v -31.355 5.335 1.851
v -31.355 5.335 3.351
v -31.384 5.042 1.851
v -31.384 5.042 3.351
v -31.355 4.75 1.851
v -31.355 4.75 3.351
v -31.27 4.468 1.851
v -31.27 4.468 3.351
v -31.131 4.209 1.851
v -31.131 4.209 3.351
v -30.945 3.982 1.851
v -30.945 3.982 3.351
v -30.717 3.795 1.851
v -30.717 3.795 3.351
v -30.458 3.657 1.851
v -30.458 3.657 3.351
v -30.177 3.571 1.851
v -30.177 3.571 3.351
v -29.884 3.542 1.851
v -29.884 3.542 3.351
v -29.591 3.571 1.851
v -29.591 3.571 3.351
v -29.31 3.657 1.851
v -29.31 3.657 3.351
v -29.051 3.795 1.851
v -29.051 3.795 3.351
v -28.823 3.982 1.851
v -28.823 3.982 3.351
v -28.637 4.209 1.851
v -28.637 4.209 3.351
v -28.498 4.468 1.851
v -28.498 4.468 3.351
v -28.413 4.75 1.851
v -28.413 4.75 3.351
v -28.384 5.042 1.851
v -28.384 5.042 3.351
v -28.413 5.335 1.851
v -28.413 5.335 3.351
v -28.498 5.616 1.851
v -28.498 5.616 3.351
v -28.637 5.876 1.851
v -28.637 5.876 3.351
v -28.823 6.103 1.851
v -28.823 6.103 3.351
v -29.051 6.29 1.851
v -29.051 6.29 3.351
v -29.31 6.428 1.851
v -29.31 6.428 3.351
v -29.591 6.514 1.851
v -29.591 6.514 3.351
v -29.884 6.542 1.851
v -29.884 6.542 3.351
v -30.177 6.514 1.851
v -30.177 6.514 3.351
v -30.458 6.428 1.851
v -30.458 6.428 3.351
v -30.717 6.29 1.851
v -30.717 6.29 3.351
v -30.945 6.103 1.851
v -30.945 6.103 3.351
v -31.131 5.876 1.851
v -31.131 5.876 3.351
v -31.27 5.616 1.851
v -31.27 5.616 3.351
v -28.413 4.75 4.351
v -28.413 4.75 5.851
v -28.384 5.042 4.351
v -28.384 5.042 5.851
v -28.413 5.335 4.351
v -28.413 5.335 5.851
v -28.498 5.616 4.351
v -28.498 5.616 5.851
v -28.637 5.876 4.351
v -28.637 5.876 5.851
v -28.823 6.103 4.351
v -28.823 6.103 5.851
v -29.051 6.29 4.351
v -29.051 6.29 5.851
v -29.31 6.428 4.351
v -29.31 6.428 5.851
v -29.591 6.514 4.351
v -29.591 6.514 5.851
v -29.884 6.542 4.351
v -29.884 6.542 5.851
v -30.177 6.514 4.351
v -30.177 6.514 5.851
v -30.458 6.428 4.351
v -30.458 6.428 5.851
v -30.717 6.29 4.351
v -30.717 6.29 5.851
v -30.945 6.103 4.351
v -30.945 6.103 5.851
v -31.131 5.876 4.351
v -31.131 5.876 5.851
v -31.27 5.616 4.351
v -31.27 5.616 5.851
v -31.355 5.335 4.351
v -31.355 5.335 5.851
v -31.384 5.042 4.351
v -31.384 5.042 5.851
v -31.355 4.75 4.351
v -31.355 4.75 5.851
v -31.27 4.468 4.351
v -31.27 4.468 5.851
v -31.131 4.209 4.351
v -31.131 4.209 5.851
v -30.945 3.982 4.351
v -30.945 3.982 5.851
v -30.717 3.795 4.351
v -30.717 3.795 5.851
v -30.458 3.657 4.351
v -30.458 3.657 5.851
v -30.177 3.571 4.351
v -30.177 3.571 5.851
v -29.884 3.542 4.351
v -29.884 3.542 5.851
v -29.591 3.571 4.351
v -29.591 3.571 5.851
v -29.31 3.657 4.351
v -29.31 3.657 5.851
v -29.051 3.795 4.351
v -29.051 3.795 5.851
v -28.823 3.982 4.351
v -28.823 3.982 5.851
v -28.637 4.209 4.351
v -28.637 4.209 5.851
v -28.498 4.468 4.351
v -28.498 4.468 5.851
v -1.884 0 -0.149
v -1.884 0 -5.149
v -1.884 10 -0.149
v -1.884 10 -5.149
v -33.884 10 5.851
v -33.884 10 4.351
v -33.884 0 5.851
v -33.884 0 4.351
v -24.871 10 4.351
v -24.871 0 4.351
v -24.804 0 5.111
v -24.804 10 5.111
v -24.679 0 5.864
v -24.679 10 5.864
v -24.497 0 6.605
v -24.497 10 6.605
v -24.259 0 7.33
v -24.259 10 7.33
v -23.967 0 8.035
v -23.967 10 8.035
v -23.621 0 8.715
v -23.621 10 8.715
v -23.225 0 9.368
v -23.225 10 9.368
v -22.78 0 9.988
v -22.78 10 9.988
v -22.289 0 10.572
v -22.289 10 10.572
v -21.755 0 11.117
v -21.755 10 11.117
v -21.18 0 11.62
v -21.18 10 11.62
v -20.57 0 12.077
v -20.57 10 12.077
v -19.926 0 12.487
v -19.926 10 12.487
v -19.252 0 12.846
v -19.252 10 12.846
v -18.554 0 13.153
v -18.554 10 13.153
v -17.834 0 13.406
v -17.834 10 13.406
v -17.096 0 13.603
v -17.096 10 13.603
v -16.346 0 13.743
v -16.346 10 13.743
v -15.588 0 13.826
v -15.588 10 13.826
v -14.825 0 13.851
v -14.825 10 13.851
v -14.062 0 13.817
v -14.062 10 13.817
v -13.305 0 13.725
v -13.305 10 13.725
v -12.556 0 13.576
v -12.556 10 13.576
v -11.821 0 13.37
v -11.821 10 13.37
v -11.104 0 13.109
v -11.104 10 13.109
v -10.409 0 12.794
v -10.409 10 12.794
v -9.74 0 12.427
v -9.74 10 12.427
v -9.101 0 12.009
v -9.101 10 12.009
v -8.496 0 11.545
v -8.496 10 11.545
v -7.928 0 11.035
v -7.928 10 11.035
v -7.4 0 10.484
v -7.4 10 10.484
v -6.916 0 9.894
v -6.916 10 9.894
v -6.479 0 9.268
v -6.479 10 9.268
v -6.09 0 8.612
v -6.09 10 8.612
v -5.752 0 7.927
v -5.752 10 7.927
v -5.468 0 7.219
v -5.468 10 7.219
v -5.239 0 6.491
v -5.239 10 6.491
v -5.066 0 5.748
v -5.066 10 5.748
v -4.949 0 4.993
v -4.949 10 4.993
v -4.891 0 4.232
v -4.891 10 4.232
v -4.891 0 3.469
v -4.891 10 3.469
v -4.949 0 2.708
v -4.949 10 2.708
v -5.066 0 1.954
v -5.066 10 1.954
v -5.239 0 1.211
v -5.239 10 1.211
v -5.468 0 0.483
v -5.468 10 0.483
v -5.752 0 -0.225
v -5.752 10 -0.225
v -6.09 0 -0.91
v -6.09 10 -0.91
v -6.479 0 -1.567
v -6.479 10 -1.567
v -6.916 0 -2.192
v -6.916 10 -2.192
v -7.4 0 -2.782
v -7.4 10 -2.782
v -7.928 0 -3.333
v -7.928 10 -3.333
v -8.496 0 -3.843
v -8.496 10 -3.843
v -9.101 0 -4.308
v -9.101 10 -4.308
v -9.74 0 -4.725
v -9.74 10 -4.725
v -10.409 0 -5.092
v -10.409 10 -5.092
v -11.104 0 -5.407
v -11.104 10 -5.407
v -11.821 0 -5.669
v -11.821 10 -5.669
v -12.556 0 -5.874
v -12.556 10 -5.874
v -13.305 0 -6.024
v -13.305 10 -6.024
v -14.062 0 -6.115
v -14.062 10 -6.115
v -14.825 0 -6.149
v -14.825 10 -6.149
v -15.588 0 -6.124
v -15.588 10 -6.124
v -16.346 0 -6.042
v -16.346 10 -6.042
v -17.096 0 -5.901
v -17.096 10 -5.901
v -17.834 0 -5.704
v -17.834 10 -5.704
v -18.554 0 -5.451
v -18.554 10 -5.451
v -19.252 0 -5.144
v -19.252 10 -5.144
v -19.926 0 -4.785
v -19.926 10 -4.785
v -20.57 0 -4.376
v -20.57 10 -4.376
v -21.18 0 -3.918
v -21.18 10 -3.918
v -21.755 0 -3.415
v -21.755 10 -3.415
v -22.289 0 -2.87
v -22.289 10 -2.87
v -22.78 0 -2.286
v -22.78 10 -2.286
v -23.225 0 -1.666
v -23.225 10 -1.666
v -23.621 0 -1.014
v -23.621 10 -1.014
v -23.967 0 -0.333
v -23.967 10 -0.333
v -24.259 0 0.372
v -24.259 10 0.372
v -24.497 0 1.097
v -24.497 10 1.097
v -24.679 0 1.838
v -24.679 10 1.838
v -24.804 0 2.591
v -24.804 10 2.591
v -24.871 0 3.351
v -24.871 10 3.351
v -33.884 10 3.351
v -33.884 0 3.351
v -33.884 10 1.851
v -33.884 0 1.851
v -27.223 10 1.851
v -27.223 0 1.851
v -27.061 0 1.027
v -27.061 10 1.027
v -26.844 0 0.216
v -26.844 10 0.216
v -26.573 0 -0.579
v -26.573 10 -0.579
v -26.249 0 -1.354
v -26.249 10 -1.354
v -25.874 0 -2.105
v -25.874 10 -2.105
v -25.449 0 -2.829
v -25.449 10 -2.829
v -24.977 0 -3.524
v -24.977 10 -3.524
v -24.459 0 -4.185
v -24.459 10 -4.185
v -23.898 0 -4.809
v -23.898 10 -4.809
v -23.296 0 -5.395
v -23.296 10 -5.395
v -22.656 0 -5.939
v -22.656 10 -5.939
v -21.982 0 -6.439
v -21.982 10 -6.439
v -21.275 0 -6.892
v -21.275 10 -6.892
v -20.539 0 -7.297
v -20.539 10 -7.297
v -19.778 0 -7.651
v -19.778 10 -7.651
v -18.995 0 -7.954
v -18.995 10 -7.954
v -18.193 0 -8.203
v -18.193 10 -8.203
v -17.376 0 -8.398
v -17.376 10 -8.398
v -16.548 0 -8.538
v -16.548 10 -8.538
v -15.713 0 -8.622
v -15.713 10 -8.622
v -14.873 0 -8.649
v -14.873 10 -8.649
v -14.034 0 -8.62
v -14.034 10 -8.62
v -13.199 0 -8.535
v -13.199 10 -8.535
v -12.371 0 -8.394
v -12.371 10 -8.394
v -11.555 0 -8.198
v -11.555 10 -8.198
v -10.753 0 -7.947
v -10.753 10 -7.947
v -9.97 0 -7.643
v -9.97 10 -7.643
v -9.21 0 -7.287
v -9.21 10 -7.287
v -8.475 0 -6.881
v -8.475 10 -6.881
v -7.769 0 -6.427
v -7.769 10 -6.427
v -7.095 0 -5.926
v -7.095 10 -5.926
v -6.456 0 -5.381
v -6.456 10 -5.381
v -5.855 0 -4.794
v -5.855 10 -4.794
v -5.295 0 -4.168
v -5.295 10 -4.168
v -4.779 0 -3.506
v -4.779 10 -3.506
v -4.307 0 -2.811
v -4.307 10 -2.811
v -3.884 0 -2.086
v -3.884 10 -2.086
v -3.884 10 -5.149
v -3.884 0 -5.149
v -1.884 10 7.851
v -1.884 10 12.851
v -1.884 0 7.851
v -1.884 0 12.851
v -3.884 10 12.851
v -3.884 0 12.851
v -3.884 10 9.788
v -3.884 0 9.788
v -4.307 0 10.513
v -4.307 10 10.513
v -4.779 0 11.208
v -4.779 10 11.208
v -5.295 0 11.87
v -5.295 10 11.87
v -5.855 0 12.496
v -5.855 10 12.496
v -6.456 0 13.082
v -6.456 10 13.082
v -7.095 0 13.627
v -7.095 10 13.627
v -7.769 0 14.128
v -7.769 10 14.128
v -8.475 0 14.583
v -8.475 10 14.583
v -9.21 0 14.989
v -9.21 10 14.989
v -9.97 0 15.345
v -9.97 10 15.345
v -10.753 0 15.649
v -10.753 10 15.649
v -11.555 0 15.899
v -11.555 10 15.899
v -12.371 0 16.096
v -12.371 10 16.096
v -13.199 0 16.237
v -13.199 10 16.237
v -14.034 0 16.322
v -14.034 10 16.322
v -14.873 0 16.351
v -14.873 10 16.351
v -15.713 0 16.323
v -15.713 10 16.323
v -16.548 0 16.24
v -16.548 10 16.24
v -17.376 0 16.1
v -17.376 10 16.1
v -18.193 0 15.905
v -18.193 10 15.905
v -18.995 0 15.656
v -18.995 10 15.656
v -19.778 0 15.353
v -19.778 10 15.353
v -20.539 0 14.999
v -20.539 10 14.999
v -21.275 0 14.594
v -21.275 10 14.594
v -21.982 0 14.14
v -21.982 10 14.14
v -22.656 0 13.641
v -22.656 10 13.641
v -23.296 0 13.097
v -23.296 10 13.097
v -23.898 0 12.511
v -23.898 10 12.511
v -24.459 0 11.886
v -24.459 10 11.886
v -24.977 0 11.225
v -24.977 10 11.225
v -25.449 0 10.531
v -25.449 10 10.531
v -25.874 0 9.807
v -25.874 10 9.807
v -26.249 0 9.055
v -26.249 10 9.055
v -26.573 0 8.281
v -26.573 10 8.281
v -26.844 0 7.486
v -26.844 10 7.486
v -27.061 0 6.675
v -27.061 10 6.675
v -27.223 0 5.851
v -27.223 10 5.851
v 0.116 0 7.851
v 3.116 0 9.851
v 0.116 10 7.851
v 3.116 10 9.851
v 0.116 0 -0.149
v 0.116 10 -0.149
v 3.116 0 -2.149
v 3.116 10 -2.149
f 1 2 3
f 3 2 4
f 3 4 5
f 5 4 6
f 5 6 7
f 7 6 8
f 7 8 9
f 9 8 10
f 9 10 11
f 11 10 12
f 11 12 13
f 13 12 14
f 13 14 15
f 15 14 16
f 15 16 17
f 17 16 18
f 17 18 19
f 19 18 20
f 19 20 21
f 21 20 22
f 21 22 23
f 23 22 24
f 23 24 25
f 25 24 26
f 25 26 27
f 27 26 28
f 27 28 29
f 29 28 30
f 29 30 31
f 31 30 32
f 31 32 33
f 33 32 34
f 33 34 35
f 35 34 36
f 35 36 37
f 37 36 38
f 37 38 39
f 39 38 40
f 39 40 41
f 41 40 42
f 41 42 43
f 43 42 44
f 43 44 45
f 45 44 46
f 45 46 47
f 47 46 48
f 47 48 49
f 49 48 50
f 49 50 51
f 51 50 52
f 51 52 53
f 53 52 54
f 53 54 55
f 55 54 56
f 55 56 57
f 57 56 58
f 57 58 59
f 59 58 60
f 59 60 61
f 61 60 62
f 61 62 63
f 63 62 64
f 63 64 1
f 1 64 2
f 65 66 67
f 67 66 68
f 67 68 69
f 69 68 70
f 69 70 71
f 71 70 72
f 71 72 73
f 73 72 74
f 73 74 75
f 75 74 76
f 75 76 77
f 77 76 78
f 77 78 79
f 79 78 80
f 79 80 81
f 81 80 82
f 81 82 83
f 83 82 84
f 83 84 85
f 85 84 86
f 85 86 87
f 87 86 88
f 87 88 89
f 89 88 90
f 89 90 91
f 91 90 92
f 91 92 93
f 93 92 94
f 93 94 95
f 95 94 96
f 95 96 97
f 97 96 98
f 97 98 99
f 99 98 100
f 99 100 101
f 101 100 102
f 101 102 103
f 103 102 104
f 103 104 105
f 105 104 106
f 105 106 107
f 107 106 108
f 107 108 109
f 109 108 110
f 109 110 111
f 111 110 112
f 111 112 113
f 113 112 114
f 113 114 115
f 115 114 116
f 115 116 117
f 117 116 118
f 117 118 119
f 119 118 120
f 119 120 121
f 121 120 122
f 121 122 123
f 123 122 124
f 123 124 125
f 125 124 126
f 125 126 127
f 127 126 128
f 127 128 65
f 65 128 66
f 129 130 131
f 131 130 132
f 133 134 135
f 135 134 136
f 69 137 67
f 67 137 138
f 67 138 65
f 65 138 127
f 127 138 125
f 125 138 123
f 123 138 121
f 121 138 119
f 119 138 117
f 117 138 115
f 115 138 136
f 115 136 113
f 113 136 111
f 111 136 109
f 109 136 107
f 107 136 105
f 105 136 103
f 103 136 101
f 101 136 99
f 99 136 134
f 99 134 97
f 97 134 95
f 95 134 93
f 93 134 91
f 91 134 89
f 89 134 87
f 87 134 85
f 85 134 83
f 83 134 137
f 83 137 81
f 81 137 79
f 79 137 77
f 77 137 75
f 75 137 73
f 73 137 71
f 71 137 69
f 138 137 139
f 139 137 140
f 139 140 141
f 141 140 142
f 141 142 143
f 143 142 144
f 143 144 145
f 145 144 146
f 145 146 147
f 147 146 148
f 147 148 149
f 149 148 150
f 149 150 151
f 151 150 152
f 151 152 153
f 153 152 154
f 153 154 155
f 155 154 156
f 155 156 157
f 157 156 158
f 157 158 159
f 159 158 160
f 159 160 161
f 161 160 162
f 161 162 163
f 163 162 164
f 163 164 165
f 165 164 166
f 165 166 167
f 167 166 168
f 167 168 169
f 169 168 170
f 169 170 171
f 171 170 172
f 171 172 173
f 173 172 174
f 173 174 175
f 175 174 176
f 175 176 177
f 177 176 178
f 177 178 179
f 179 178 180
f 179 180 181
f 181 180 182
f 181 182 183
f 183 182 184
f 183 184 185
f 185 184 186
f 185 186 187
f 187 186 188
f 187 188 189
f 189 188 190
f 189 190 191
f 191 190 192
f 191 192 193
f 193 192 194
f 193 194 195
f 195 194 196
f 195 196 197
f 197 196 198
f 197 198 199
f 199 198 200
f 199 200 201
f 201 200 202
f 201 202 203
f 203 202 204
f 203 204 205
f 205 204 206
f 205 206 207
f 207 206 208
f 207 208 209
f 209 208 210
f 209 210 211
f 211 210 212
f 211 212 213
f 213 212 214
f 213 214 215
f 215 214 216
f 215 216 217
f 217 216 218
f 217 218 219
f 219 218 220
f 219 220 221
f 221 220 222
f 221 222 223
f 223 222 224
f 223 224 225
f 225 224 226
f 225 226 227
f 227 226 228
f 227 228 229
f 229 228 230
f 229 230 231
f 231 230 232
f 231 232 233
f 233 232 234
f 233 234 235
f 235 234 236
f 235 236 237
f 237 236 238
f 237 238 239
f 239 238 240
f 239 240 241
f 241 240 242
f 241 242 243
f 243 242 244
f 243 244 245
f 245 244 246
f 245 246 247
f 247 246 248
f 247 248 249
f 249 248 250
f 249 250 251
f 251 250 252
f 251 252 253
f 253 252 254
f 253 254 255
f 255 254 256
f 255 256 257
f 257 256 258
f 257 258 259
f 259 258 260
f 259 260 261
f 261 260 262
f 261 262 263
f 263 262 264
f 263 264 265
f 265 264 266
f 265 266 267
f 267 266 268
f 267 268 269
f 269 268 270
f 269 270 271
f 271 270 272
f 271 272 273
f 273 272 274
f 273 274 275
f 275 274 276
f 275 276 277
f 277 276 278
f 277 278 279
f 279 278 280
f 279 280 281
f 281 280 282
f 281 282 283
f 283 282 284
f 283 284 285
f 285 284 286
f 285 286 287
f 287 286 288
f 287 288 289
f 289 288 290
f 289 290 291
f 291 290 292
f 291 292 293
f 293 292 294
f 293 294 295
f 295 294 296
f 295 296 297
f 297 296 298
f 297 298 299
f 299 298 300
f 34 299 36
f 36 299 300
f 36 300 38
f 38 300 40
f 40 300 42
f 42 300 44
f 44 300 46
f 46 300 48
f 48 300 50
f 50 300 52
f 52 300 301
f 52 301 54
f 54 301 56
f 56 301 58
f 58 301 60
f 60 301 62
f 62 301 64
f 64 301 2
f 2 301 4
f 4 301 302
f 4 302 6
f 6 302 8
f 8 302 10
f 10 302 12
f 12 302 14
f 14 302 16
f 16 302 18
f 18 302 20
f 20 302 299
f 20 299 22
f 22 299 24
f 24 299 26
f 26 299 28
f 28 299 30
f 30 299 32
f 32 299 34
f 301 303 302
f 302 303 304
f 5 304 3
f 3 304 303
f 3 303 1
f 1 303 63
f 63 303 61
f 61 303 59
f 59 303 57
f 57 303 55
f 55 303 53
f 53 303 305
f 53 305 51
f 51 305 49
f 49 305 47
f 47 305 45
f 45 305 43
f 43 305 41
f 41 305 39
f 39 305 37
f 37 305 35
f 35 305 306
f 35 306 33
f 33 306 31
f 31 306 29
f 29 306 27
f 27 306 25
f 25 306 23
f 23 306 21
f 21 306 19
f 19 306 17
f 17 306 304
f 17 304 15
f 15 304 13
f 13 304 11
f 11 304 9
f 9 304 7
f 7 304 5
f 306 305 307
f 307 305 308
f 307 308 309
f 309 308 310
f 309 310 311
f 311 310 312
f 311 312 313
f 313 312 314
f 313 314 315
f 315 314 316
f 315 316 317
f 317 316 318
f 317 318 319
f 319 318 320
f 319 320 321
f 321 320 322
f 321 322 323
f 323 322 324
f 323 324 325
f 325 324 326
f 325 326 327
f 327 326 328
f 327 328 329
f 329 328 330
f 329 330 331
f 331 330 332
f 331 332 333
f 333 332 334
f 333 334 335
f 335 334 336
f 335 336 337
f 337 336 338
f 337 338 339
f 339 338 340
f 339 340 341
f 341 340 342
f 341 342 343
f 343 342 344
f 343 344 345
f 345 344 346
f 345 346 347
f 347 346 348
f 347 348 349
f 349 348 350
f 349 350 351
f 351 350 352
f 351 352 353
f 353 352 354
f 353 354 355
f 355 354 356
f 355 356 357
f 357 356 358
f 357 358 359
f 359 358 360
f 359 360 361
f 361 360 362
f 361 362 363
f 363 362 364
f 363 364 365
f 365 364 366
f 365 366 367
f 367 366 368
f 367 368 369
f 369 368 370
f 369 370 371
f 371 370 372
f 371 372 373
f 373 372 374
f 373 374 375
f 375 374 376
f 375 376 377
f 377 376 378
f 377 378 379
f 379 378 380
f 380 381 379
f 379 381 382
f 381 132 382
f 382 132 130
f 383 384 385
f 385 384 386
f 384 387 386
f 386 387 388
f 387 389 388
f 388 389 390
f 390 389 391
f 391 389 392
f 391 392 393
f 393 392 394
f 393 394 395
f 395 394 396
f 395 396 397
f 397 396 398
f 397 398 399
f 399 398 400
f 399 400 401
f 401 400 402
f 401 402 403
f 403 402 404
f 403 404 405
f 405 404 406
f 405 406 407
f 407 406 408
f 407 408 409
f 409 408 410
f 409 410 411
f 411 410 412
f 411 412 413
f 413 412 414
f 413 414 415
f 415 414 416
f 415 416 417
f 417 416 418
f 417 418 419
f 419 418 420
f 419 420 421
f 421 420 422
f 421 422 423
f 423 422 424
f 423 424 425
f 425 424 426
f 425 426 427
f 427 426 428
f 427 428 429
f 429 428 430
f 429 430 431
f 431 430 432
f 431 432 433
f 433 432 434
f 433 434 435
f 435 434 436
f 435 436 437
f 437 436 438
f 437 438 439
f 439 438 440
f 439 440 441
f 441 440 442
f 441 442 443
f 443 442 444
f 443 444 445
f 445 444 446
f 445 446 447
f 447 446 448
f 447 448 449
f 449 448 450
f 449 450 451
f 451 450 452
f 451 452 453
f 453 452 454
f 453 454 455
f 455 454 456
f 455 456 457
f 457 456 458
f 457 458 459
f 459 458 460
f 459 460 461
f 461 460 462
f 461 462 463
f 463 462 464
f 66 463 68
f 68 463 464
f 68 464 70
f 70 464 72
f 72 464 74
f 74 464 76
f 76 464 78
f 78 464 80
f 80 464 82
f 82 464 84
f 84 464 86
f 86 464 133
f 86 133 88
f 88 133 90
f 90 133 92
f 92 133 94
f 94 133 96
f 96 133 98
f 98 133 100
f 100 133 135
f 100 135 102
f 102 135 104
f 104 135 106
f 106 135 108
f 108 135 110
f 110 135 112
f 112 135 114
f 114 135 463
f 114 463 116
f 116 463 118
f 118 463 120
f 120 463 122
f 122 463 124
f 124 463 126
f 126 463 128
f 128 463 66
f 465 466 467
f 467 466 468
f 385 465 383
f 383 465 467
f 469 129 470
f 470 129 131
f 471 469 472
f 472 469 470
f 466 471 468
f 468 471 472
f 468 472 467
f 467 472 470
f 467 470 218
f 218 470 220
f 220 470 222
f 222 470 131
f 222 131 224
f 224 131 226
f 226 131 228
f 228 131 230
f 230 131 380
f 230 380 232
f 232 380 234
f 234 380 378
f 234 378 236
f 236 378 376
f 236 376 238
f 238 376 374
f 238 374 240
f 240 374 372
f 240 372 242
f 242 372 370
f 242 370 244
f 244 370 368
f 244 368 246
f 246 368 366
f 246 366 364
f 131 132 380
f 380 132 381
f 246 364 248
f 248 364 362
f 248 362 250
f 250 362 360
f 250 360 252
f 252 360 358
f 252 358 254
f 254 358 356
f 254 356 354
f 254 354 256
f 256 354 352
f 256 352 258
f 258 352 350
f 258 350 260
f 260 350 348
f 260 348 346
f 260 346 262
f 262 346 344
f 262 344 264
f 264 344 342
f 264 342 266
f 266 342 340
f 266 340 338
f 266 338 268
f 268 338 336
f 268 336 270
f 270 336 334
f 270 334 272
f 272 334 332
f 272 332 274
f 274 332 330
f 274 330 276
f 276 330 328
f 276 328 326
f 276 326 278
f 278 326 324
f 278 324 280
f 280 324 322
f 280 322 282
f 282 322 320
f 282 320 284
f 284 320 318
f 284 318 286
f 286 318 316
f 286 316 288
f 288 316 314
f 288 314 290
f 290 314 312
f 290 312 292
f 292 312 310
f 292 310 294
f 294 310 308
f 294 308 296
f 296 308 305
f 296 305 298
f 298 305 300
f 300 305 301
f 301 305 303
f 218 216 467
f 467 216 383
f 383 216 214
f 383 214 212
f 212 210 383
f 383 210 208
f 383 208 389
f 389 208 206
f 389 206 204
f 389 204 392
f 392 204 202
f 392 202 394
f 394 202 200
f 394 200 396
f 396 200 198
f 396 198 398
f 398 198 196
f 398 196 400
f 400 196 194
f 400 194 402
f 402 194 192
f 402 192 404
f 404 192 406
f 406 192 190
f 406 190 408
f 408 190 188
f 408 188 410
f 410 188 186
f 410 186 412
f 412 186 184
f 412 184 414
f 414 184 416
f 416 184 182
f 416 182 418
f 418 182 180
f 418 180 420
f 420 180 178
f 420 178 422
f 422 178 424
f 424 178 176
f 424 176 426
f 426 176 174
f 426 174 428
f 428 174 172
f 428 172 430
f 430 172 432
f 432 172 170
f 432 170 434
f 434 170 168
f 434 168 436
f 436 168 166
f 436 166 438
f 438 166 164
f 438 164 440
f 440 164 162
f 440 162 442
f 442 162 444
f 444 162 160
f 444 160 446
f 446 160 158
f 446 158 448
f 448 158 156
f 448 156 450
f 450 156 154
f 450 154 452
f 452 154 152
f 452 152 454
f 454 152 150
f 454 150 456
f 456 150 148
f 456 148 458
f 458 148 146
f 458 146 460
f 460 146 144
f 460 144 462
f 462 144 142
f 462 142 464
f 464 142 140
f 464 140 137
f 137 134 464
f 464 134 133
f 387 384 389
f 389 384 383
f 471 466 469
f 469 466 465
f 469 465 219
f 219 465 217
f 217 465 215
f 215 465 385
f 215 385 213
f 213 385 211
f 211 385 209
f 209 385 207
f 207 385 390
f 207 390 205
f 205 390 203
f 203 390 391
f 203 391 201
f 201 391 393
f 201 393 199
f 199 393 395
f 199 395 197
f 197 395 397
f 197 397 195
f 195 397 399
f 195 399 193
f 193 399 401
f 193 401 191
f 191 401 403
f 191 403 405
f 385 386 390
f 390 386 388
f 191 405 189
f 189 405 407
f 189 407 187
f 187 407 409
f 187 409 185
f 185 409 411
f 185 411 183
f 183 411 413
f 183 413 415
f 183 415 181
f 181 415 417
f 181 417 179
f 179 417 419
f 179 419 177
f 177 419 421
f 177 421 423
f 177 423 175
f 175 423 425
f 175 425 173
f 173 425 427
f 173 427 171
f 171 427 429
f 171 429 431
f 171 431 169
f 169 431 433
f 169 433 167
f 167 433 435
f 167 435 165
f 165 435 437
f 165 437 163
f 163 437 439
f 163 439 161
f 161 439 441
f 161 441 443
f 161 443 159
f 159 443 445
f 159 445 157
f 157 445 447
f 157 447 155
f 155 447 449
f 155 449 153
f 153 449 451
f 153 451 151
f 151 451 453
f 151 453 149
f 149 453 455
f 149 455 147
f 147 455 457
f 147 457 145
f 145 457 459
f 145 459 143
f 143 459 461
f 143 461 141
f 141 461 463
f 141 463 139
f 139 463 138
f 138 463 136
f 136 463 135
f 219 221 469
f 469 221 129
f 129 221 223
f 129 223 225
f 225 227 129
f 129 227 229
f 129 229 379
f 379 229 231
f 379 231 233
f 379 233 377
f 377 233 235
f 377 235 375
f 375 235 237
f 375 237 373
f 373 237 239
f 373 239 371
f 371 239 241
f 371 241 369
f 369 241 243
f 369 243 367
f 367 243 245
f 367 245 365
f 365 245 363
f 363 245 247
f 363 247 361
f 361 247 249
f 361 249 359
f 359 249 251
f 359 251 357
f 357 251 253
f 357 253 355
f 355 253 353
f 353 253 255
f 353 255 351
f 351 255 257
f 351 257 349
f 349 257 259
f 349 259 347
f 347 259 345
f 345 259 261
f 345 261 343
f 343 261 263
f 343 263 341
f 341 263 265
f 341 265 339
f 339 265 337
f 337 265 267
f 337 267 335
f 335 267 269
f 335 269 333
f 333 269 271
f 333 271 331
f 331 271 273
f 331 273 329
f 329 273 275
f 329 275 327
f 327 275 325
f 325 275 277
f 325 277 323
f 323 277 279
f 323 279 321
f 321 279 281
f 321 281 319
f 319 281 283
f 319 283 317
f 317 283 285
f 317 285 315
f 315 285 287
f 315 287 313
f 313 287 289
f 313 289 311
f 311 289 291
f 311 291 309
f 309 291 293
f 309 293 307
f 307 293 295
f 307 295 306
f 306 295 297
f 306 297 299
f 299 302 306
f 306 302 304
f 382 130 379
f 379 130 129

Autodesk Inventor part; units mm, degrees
ref_plane "YZ Plane" through (0, 0, 0) normal (1, 0, 0) x (0, 1, 0)
ref_plane "XZ Plane" through (0, 0, 0) normal (0, 1, 0) x (-1, 0, 0)
sketch "Sketch1" plane through (0, 0, 0) normal (0, 1, 0) x (-1, 0, 0)
  line L0 (-0.116, 7.8509) -> (-0.116, -0.1491)
  line L1 (-0.116, -0.1491) -> (-3.116, -2.1491)
  line L2 (-3.116, -2.1491) -> (-3.116, 9.8509)
  line L3 (-0.116, 7.8509) -> (-3.116, 9.8509)
  line L4 (-0.116, 7.8509) -> (1.884, 7.8509)
  line L5 (1.884, 7.8509) -> (1.884, -0.1491)
  line L6 (1.884, -0.1491) -> (-0.116, -0.1491)
  point P0 (0, 0)
  dimension "d0" = 8
  dimension "d1" = 12
  dimension "d3" = 3
  dimension "d5" = 2
  dimension "d8" = 2
extrude "Extrusion1" add sketch "Sketch1" along normal blind 10
ref_plane "Work Plane1" through (0, 5, 0) normal (0, 1, 0) x (1, 0, 0)
sketch "Sketch2" plane through (0, 5, 0) normal (0, 1, 0) x (1, 0, 0)
  circle A0 centre (-14.884, -3.8509) radius 12.5
  line L0 (-3.884, 5.1491) -> (-1.884, 5.1491)
  line L1 (-1.884, 5.1491) -> (-1.884, -12.8509)
  line L2 (-1.884, -12.8509) -> (-3.884, -12.8509)
  line L3 (-3.884, -12.8509) -> (-3.884, 5.1491)
  line L4 (3.116, -9.8509) -> (3.116, 2.1491) projected
  line L5 (0.116, -7.8509) -> (3.116, -9.8509) projected
  line L6 (-1.884, -7.8509) -> (0.116, -7.8509) projected
  line L7 (-1.884, 0.1491) -> (-1.884, -7.8509) projected
  line L8 (0.116, 0.1491) -> (-1.884, 0.1491) projected
  line L9 (3.116, 2.1491) -> (0.116, 0.1491) projected
  line L10 (3.116, -9.8509) -> (3.116, 2.1491) projected
  line L11 (0.116, -7.8509) -> (3.116, -9.8509) projected
  line L12 (-1.884, -7.8509) -> (0.116, -7.8509) projected
  line L13 (-1.884, 0.1491) -> (-1.884, -7.8509) projected
  line L14 (0.116, 0.1491) -> (-1.884, 0.1491) projected
  line L15 (3.116, 2.1491) -> (0.116, 0.1491) projected
  circle A1 centre (-14.884, -3.8509) radius 10
  line L16 (-29.8977, -3.3509) -> (-24.5183, -3.3509)
  line L17 (-24.5183, -3.3509) -> (-24.5183, -4.3509)
  line L18 (-24.5183, -4.3509) -> (-33.884, -4.3509)
  line L19 (-33.884, -4.3509) -> (-33.884, -1.5714)
  line L20 (-29.8977, -3.3509) -> (-33.884, -3.3509)
  line L21 (-33.884, -4.3509) -> (-33.884, -5.8509)
  line L22 (-33.884, -5.8509) -> (-24.682, -5.8509)
  line L23 (-33.884, -3.3509) -> (-33.884, -1.8509)
  line L24 (-33.884, -1.8509) -> (-24.682, -1.8509)
  point P0 (0, 0)
  point P1 (-27.223, -1.8509)
  point P2 (-24.8715, -3.3509)
  point P3 (-24.8715, -4.3509)
  point P4 (-27.223, -5.8509)
  point P5 (-3.884, -9.7881)
  point P6 (-3.884, 2.0862)
  point P7 (-27.374, -4.3509)
  point P8 (-27.374, -3.3509)
  point P9 (-1.884, -7.3509)
  point P10 (-1.884, -0.3509)
  point P11 (-3.884, -3.8509)
  dimension "d9" = 25
  dimension "d10" = 0
  dimension "d11" = 5
  dimension "d12" = 5
  dimension "d13" = 2
  dimension "d14" = 9
  dimension "d15" = 20
  dimension "d16" = 13
  dimension "d17" = 1
  dimension "d18" = 1.5
  dimension "d19" = 1.5
  dimension "d26" = 0.5
  dimension "d27" = 19
extrude "Extrusion2" add sketch "Sketch2" along normal mid plane 10 contours A0 L3 | A0 L3 L0 L1 L2 | L3 A0 L22 A1 L24 | L24 A1 L16 A0 | A0 L16 L20 L19 L24 | L22 L21 L18 A0 | A0 L18 A1 L22
sketch "Sketch3" plane through (-27.223, 10, 1.8509) normal (0, 0, -1) x (-1, 0, 0)
  circle A0 centre (2.661, -4.9576) radius 1.5
  line L0 (0, 0) -> (6.661, 0) projected
  line L1 (0, -10) -> (0, 0) projected
  line L2 (6.661, -10) -> (0, -10) projected
  line L3 (6.661, -10) -> (6.661, 0) projected
  point P0 (-27.223, -10)
  dimension "d22" = 3
  dimension "d28" = 4
extrude "Extrusion3" cut sketch "Sketch3" against normal blind 10 contours A0
equation "\"d12\" = d11"
properties part number "Acople marcador_3DPrint"
